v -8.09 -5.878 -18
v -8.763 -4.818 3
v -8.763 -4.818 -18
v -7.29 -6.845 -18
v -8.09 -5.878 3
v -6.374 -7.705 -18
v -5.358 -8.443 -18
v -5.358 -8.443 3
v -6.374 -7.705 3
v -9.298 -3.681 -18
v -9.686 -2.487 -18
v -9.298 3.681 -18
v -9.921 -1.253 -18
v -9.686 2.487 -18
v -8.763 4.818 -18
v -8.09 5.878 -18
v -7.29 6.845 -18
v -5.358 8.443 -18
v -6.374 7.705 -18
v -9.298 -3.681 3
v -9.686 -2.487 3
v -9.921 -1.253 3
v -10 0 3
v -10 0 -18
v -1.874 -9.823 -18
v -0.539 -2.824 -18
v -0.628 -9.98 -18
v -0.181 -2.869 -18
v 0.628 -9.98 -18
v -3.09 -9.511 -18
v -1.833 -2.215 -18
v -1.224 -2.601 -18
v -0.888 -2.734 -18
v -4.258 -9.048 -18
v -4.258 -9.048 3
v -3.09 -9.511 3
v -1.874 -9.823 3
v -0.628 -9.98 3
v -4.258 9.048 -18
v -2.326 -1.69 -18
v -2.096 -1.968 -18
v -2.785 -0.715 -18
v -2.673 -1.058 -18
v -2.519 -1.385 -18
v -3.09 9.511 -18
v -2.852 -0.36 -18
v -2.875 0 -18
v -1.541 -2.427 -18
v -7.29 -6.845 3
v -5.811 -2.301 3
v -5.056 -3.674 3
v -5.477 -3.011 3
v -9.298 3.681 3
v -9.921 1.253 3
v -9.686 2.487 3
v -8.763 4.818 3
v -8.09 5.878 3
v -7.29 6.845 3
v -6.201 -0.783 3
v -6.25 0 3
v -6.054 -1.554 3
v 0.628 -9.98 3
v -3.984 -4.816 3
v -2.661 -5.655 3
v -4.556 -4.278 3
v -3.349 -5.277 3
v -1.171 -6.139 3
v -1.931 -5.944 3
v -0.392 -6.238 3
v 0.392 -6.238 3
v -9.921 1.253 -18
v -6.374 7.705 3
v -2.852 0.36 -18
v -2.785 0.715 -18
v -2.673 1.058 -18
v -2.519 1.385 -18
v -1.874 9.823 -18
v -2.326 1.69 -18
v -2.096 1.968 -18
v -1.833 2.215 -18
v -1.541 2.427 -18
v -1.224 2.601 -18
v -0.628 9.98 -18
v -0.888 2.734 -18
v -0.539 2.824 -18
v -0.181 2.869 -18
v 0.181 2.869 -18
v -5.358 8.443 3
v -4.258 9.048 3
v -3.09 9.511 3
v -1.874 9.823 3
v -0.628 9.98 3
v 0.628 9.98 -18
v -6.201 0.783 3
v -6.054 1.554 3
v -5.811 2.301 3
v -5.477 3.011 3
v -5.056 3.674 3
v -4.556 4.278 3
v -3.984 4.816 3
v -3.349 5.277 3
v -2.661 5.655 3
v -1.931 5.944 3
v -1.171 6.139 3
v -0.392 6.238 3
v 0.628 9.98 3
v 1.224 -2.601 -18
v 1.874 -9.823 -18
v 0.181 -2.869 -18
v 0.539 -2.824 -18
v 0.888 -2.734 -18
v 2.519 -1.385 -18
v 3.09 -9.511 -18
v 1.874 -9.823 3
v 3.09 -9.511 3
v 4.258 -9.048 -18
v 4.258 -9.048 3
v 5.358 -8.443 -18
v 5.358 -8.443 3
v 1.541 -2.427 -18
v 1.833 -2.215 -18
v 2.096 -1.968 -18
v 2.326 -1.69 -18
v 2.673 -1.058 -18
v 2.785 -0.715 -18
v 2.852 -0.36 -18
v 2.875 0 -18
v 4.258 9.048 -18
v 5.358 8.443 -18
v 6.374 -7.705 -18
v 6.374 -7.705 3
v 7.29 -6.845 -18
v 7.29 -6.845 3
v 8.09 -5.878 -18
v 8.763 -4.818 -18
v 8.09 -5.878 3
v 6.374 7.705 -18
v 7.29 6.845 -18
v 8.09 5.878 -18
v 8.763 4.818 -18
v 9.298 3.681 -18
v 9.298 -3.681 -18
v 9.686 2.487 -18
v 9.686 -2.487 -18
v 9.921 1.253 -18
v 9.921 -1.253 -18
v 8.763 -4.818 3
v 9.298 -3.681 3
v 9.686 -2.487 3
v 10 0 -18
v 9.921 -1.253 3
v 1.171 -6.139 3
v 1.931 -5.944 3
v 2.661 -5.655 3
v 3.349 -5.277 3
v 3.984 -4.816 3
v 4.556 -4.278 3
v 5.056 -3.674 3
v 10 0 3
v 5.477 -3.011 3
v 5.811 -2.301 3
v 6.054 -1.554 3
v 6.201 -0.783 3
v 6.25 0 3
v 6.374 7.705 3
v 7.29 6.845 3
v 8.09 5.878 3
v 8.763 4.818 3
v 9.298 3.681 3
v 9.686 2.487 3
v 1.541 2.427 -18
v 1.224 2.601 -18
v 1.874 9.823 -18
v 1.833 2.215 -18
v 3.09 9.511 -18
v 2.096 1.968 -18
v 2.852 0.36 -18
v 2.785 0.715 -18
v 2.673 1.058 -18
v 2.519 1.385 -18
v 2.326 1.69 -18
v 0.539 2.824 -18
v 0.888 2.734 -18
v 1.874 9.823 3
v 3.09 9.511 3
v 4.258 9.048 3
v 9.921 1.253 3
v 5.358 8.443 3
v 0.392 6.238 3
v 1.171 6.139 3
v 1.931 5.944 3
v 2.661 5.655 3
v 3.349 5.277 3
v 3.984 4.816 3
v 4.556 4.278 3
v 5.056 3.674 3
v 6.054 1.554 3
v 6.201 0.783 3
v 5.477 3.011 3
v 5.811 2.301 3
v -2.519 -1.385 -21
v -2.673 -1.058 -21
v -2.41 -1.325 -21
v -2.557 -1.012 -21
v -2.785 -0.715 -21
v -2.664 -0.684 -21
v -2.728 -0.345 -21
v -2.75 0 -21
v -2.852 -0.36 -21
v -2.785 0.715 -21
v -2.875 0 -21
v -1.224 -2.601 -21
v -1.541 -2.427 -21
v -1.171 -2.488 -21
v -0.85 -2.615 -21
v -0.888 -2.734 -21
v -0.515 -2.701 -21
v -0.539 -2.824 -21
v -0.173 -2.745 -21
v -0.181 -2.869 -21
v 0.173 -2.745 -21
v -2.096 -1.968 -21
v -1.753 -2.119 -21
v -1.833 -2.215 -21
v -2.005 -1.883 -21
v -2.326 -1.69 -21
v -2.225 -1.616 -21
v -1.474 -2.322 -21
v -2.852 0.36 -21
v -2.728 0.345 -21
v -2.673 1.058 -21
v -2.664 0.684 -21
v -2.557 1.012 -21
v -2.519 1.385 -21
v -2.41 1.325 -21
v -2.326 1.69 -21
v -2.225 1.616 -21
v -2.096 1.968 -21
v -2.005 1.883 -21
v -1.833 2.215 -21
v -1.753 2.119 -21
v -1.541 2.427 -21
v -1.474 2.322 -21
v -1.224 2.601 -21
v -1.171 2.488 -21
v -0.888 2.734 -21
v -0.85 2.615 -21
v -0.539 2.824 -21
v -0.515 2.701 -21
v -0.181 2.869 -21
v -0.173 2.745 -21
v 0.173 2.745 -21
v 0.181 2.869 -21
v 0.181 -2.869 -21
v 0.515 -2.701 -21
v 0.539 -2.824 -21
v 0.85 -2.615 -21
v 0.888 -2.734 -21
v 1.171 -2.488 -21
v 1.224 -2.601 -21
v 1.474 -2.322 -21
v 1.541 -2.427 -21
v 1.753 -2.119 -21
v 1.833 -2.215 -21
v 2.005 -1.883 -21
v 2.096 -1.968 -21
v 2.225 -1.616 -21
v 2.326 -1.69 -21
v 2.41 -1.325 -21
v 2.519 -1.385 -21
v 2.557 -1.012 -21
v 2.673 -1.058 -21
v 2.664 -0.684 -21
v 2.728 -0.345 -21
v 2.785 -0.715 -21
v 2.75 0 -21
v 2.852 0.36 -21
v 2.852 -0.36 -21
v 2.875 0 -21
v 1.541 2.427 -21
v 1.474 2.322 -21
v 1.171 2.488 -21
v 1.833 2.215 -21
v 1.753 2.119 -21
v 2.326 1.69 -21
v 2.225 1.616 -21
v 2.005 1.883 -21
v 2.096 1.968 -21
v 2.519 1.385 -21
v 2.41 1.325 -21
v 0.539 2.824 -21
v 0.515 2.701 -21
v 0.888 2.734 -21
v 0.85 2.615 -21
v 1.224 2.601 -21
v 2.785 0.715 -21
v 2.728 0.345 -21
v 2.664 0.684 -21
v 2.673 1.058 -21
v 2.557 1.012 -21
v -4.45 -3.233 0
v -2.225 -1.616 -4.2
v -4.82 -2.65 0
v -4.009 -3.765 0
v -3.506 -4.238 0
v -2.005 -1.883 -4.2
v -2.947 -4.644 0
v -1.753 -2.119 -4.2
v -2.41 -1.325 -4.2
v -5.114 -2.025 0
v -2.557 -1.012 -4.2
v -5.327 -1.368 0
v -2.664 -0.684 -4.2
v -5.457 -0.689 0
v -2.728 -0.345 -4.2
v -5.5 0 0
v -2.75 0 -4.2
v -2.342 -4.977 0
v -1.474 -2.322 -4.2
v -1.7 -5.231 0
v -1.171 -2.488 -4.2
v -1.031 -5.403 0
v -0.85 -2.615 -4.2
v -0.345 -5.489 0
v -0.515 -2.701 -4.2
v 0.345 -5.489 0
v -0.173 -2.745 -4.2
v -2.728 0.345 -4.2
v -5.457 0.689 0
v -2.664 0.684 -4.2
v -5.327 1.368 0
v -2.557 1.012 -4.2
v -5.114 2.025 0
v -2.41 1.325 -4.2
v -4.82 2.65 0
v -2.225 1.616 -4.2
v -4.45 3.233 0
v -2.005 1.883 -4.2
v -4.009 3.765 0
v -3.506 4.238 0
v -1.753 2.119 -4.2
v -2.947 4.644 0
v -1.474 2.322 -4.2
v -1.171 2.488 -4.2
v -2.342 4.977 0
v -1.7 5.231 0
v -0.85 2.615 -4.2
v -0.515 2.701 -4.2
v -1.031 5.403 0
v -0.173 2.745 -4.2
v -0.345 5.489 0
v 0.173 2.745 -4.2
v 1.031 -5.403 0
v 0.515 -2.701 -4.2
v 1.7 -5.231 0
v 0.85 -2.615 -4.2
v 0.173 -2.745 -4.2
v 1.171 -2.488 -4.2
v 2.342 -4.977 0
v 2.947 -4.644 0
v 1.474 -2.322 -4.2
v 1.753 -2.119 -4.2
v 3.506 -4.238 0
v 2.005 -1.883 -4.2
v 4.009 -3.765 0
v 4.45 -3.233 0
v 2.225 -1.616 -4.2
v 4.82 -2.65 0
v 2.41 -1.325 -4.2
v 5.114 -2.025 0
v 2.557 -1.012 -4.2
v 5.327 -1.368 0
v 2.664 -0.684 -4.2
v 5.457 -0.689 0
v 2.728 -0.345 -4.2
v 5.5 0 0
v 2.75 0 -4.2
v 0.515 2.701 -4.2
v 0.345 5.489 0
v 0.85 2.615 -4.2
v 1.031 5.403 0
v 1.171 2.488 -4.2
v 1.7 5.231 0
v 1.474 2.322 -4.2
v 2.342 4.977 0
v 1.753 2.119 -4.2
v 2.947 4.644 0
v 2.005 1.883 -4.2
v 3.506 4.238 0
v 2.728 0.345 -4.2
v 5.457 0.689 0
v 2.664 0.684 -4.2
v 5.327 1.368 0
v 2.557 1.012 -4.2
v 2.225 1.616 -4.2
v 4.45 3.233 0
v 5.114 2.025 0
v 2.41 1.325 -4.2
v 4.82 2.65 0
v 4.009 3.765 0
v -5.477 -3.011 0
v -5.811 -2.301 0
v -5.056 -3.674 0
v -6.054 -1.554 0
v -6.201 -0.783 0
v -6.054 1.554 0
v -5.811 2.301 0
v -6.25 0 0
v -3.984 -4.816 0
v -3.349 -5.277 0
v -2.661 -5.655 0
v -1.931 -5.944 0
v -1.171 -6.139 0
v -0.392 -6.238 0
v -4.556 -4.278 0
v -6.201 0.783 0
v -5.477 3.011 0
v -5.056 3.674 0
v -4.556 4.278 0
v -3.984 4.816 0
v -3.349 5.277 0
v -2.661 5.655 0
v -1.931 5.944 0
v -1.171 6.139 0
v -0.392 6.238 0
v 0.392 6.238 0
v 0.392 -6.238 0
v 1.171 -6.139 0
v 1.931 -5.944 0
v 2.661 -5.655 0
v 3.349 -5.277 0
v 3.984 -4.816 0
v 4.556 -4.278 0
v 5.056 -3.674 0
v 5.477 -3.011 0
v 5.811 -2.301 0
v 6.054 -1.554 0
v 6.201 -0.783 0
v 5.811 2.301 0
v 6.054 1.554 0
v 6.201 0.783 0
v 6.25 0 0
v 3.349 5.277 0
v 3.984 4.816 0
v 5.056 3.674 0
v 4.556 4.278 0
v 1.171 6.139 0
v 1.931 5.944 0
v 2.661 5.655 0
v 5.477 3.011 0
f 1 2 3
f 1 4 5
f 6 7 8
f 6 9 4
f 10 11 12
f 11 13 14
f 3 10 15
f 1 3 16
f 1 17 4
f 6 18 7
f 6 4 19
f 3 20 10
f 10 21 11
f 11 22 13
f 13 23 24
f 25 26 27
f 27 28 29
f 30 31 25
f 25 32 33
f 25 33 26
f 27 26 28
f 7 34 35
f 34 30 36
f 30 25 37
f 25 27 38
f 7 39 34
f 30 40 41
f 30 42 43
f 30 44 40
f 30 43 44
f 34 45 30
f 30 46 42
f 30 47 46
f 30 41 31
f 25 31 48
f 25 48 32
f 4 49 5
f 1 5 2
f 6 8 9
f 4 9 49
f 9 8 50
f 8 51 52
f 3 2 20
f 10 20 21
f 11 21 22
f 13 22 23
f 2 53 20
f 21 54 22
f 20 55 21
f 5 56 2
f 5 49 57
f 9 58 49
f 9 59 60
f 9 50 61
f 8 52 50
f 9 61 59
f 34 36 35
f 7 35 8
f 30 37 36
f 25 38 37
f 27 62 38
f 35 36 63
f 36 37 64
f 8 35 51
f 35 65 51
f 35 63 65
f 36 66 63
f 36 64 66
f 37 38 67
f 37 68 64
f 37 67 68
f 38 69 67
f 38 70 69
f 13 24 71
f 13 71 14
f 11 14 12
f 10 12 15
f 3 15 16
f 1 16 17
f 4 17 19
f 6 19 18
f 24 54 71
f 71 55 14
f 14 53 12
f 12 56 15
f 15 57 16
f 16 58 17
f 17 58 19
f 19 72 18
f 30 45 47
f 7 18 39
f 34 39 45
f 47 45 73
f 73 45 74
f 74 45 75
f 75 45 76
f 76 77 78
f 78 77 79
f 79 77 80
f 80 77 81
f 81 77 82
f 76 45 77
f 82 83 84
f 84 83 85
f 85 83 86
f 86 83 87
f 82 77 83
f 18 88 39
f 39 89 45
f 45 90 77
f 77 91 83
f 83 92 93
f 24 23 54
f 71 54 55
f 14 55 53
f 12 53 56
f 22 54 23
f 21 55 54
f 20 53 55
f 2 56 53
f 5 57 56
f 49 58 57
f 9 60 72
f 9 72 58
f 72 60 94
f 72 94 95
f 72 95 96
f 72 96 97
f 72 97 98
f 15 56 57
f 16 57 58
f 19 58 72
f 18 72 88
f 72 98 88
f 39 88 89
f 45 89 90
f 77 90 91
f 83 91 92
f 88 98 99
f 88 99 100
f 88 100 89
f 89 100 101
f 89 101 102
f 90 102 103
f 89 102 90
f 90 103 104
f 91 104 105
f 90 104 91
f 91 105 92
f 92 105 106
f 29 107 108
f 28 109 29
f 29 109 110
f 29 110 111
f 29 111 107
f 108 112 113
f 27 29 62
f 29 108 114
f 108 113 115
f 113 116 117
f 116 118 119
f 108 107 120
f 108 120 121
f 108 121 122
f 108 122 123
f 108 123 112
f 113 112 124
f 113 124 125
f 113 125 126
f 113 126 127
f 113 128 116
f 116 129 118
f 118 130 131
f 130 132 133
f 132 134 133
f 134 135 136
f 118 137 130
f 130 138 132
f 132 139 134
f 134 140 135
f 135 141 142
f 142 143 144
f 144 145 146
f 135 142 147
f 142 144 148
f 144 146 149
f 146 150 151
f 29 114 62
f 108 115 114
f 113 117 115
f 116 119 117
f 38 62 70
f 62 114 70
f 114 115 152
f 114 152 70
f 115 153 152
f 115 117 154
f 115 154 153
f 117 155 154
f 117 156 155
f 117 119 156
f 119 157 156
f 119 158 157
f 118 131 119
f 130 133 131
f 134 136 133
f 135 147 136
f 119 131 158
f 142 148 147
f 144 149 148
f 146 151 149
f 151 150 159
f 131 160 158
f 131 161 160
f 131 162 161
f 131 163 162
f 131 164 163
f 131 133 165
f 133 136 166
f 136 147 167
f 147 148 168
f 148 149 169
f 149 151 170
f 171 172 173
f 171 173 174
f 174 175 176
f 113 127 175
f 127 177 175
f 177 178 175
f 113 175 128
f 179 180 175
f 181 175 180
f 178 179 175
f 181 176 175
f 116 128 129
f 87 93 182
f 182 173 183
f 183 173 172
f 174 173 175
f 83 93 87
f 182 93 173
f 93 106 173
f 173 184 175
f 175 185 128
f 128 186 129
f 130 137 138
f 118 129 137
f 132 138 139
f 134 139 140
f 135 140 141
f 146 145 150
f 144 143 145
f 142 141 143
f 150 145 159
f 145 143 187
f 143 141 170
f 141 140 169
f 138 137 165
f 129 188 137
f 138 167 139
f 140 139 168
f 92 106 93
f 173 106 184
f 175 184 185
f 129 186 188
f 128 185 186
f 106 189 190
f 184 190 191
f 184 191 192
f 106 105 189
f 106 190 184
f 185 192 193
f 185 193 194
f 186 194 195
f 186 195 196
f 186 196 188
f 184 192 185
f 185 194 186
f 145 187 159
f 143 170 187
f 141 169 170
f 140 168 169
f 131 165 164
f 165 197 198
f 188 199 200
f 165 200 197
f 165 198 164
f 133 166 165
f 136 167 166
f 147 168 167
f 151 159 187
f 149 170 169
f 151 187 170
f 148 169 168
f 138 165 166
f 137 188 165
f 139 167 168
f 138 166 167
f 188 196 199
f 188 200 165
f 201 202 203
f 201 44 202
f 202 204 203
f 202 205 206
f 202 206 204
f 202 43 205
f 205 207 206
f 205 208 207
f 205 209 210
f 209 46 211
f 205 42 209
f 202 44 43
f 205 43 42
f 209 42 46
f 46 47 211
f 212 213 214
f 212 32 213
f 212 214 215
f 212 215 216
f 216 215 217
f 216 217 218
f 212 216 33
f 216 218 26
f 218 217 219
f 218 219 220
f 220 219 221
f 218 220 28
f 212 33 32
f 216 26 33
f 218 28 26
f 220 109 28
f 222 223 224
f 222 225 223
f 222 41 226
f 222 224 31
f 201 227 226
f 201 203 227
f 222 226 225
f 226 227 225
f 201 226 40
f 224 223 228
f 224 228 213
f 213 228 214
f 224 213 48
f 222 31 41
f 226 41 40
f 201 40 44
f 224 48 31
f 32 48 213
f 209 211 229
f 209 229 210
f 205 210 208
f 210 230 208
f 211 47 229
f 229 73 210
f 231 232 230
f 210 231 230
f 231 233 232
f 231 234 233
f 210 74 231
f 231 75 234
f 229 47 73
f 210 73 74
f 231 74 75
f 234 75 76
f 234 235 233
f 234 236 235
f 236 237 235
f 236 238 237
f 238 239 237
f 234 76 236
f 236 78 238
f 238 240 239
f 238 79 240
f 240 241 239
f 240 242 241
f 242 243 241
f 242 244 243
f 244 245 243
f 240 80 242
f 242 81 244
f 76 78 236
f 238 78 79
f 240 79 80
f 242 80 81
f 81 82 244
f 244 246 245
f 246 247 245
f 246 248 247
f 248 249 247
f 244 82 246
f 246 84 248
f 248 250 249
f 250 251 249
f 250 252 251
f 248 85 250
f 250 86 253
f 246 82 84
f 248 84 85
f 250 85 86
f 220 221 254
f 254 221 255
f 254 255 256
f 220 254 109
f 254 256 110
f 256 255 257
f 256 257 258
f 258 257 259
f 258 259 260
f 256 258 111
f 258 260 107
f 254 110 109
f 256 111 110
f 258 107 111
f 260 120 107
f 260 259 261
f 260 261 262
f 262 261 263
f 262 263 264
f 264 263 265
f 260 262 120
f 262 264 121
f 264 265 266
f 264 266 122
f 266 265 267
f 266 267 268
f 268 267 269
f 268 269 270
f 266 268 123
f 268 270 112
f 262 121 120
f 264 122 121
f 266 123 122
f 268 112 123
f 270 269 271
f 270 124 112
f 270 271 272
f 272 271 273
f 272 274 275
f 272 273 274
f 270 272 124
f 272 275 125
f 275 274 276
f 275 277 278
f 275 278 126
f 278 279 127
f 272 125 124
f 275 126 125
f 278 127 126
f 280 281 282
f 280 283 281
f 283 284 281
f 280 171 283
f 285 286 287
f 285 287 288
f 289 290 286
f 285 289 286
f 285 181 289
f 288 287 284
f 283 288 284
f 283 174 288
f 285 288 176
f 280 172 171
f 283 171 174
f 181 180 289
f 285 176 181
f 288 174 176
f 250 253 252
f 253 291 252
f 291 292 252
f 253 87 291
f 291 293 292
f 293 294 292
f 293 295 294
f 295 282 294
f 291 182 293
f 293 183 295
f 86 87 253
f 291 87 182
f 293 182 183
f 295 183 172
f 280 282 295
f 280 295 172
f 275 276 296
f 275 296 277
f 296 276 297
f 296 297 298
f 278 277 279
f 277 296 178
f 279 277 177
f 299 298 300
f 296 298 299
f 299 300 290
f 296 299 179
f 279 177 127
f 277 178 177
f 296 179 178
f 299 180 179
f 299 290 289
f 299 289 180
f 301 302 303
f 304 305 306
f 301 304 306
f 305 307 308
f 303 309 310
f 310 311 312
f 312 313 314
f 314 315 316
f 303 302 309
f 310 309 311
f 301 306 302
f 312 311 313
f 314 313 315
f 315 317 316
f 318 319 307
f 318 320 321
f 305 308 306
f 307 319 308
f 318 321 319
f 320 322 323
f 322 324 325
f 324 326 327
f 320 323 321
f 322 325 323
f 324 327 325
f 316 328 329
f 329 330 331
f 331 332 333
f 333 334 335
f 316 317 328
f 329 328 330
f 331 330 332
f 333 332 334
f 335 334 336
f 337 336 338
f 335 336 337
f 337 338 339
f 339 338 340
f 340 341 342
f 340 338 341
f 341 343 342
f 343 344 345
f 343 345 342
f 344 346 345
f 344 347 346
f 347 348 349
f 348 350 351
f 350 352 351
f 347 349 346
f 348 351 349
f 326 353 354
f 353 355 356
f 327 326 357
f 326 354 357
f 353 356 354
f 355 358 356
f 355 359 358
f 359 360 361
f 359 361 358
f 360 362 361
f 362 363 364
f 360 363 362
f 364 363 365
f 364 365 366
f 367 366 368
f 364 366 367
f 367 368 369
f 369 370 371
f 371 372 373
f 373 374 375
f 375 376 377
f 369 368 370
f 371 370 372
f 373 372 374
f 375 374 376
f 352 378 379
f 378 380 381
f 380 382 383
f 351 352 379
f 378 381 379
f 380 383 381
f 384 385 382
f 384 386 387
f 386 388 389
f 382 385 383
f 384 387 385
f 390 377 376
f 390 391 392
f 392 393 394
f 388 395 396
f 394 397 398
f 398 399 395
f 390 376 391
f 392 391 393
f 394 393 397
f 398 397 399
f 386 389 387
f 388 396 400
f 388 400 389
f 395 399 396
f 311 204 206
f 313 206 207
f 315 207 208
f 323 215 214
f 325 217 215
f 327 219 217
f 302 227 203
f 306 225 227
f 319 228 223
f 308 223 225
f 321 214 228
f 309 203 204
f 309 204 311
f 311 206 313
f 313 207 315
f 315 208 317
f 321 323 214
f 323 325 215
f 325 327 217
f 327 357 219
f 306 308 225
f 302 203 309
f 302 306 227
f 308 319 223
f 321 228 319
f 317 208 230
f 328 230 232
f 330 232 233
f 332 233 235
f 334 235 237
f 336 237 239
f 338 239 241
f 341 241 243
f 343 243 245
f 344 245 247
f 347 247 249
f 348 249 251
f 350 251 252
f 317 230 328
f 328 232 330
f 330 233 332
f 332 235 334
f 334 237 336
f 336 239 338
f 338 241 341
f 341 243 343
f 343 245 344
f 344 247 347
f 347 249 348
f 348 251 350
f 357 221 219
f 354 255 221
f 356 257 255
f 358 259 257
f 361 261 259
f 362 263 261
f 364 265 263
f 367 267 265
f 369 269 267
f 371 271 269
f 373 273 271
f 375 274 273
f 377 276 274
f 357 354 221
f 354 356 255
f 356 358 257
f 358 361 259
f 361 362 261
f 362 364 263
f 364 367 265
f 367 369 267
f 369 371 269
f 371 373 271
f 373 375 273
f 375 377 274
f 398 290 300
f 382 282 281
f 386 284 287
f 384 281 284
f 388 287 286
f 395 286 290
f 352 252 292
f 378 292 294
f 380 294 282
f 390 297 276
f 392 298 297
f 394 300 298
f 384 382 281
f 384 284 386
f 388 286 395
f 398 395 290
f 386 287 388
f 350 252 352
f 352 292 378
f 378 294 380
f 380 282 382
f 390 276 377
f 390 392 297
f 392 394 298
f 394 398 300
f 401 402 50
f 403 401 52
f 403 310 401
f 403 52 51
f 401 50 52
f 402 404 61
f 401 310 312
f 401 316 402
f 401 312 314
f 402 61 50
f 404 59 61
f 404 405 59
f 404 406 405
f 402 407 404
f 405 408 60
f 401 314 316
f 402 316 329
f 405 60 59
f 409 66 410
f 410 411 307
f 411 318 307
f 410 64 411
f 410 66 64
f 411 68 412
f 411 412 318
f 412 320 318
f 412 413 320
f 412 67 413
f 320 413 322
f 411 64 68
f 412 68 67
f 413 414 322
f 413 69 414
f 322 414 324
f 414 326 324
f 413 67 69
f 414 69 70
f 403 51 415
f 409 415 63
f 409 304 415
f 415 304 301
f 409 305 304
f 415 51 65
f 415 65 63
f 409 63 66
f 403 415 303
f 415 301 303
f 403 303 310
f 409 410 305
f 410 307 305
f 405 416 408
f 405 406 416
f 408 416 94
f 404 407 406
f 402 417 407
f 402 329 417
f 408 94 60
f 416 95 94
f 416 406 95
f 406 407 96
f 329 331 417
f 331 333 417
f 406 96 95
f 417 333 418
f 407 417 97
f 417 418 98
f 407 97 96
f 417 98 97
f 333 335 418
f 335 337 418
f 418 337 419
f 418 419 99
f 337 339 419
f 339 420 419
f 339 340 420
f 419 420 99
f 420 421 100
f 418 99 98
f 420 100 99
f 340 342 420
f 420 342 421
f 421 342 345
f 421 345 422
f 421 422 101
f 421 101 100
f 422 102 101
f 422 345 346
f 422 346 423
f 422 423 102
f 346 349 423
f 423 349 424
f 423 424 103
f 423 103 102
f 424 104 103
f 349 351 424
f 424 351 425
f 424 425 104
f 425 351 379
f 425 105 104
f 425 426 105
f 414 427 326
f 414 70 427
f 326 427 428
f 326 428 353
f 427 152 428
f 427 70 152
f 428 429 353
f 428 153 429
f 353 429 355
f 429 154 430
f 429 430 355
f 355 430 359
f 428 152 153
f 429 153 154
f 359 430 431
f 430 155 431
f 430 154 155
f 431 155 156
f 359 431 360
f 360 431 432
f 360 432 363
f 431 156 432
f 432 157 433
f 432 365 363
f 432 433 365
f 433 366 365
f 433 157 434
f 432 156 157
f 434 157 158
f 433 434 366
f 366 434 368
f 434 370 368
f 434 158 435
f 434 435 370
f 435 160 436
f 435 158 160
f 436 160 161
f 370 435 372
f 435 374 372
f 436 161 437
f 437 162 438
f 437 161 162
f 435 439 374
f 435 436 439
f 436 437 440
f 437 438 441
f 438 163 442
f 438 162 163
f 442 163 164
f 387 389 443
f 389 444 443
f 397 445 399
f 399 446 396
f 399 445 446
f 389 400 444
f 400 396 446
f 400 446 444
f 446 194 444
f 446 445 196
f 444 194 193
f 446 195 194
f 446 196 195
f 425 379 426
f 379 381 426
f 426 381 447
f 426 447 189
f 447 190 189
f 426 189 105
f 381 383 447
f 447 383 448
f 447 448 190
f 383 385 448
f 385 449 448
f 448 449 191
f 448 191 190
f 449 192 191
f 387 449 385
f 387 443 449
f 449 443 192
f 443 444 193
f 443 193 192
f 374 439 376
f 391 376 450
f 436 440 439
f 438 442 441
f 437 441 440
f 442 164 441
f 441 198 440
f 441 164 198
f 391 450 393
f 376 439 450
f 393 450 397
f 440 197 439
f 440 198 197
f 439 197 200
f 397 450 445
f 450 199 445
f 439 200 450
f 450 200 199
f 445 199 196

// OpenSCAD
$fn = 50;

difference() {
	union() {
		translate(v = [0, 0, -18.0]) {
			cylinder(h = 21, r = 10.0);
		}
		#translate(v = [0, 0, -21.0]) {
			cylinder(h = 21, r = 2.875);
		}
	}
	union() {
		translate(v = [0, 0, 0]) {
			rotate(a = [0, 0, 0]) {
				difference() {
					union() {
						translate(v = [0, 0, -21.0]) {
							cylinder(h = 21, r = 2.25);
						}
						translate(v = [0, 0, -4.2]) {
							cylinder(h = 4.2, r1 = 2.75, r2 = 5.5);
						}
						translate(v = [0, 0, -21.0]) {
							cylinder(h = 21, r = 2.75);
						}
						translate(v = [0, 0, -21.0]) {
							cylinder(h = 21, r = 2.25);
						}
					}
					union();
				}
			}
		}
		#cylinder(h = 3, r = 6.25);
	}
}
